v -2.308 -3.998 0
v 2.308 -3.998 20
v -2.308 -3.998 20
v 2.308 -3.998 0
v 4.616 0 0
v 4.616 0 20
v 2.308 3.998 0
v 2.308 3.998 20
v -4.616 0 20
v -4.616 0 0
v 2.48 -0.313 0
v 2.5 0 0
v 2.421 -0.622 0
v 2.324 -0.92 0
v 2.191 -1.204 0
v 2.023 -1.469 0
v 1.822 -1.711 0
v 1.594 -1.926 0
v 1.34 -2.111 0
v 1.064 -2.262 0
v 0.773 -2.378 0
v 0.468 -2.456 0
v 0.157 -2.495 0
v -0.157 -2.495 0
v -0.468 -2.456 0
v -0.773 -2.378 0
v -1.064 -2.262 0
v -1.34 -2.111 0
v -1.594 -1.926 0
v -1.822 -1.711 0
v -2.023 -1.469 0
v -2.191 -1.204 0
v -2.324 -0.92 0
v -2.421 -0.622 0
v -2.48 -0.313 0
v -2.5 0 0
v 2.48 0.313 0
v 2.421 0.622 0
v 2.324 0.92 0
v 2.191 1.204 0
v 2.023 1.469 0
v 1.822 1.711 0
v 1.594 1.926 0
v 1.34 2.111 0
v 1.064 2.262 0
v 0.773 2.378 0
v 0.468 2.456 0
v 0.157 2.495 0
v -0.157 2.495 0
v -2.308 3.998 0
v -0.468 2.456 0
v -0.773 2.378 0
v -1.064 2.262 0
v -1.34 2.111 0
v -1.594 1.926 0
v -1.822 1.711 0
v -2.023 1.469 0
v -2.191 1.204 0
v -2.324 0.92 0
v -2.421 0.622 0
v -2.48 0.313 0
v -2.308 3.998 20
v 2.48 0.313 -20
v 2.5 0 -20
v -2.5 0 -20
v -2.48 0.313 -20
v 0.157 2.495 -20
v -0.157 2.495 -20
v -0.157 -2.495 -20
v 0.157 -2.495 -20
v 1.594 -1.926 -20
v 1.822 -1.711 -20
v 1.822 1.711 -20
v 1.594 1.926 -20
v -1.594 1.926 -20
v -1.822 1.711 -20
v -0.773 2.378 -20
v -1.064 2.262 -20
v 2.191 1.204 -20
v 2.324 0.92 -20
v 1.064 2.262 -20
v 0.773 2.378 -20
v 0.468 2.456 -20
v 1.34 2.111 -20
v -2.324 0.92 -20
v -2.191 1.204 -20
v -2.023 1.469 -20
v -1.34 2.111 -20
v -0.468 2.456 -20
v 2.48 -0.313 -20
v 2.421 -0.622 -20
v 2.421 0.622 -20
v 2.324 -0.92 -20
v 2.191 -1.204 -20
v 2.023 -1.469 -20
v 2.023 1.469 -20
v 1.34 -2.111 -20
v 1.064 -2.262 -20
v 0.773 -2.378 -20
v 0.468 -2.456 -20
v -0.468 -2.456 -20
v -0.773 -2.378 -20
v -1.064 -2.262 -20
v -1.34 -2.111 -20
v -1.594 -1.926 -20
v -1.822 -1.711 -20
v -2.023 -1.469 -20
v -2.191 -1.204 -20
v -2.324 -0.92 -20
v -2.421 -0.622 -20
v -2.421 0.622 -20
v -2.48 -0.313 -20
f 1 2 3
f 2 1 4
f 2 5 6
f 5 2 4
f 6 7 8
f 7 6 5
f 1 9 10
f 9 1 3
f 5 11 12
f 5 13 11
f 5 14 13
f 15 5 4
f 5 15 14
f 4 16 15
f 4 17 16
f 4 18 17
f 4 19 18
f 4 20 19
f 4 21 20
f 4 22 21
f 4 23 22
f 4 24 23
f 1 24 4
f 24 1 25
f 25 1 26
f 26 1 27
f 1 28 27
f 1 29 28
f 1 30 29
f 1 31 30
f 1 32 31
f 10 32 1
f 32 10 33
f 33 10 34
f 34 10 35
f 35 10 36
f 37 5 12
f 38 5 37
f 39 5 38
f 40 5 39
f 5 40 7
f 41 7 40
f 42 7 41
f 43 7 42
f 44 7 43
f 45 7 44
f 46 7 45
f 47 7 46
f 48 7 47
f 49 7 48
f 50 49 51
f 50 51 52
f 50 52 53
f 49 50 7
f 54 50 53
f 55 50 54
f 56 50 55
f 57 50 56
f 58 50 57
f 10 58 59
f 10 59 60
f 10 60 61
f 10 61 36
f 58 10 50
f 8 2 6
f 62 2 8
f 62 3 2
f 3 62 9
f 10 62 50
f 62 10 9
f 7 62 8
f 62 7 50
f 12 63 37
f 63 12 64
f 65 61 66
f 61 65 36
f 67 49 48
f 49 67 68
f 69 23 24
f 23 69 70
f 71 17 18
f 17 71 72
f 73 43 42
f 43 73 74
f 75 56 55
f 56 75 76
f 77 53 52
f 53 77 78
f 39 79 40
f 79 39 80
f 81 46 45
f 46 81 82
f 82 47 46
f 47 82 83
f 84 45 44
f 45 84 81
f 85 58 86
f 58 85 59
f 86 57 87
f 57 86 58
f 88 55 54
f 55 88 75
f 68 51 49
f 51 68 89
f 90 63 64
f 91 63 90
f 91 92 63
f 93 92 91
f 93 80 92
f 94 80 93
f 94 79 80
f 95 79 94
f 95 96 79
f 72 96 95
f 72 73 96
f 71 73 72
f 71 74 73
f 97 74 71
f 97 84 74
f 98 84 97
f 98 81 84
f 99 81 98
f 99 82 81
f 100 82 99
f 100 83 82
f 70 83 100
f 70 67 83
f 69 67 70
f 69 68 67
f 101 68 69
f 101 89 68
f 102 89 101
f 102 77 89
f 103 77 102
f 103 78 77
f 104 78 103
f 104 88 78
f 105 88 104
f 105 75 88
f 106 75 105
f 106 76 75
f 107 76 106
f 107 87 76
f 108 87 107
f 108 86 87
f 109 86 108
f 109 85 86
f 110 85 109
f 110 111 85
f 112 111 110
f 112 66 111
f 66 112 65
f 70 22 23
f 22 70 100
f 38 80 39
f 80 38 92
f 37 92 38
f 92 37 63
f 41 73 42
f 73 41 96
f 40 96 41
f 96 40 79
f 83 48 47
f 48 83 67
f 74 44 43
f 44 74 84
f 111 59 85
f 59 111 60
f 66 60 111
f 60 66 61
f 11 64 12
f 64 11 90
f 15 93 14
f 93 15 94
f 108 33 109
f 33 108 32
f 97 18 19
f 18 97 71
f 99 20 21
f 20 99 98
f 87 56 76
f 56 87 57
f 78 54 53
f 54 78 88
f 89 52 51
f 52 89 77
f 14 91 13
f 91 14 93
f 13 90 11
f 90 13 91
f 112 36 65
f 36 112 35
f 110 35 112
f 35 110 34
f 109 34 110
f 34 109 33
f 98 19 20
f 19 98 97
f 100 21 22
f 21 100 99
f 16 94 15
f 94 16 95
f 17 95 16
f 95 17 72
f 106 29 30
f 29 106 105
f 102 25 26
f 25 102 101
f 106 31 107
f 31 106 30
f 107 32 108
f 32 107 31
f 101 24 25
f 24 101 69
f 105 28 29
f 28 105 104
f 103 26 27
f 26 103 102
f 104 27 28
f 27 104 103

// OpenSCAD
$fn = 50;


difference() {
	union() {
		linear_extrude(height = 20) {
			polygon(points = [[4.6160000000, 0.0000000000], [2.3080000000, 3.9975732639], [-2.3080000000, 3.9975732639], [-4.6160000000, 0.0000000000], [-2.3080000000, -3.9975732639], [2.3080000000, -3.9975732639]]);
		}
		translate(v = [0, 0, -20]) {
			cylinder(h = 20, r = 2.5000000000);
		}
	}
	union();
}
